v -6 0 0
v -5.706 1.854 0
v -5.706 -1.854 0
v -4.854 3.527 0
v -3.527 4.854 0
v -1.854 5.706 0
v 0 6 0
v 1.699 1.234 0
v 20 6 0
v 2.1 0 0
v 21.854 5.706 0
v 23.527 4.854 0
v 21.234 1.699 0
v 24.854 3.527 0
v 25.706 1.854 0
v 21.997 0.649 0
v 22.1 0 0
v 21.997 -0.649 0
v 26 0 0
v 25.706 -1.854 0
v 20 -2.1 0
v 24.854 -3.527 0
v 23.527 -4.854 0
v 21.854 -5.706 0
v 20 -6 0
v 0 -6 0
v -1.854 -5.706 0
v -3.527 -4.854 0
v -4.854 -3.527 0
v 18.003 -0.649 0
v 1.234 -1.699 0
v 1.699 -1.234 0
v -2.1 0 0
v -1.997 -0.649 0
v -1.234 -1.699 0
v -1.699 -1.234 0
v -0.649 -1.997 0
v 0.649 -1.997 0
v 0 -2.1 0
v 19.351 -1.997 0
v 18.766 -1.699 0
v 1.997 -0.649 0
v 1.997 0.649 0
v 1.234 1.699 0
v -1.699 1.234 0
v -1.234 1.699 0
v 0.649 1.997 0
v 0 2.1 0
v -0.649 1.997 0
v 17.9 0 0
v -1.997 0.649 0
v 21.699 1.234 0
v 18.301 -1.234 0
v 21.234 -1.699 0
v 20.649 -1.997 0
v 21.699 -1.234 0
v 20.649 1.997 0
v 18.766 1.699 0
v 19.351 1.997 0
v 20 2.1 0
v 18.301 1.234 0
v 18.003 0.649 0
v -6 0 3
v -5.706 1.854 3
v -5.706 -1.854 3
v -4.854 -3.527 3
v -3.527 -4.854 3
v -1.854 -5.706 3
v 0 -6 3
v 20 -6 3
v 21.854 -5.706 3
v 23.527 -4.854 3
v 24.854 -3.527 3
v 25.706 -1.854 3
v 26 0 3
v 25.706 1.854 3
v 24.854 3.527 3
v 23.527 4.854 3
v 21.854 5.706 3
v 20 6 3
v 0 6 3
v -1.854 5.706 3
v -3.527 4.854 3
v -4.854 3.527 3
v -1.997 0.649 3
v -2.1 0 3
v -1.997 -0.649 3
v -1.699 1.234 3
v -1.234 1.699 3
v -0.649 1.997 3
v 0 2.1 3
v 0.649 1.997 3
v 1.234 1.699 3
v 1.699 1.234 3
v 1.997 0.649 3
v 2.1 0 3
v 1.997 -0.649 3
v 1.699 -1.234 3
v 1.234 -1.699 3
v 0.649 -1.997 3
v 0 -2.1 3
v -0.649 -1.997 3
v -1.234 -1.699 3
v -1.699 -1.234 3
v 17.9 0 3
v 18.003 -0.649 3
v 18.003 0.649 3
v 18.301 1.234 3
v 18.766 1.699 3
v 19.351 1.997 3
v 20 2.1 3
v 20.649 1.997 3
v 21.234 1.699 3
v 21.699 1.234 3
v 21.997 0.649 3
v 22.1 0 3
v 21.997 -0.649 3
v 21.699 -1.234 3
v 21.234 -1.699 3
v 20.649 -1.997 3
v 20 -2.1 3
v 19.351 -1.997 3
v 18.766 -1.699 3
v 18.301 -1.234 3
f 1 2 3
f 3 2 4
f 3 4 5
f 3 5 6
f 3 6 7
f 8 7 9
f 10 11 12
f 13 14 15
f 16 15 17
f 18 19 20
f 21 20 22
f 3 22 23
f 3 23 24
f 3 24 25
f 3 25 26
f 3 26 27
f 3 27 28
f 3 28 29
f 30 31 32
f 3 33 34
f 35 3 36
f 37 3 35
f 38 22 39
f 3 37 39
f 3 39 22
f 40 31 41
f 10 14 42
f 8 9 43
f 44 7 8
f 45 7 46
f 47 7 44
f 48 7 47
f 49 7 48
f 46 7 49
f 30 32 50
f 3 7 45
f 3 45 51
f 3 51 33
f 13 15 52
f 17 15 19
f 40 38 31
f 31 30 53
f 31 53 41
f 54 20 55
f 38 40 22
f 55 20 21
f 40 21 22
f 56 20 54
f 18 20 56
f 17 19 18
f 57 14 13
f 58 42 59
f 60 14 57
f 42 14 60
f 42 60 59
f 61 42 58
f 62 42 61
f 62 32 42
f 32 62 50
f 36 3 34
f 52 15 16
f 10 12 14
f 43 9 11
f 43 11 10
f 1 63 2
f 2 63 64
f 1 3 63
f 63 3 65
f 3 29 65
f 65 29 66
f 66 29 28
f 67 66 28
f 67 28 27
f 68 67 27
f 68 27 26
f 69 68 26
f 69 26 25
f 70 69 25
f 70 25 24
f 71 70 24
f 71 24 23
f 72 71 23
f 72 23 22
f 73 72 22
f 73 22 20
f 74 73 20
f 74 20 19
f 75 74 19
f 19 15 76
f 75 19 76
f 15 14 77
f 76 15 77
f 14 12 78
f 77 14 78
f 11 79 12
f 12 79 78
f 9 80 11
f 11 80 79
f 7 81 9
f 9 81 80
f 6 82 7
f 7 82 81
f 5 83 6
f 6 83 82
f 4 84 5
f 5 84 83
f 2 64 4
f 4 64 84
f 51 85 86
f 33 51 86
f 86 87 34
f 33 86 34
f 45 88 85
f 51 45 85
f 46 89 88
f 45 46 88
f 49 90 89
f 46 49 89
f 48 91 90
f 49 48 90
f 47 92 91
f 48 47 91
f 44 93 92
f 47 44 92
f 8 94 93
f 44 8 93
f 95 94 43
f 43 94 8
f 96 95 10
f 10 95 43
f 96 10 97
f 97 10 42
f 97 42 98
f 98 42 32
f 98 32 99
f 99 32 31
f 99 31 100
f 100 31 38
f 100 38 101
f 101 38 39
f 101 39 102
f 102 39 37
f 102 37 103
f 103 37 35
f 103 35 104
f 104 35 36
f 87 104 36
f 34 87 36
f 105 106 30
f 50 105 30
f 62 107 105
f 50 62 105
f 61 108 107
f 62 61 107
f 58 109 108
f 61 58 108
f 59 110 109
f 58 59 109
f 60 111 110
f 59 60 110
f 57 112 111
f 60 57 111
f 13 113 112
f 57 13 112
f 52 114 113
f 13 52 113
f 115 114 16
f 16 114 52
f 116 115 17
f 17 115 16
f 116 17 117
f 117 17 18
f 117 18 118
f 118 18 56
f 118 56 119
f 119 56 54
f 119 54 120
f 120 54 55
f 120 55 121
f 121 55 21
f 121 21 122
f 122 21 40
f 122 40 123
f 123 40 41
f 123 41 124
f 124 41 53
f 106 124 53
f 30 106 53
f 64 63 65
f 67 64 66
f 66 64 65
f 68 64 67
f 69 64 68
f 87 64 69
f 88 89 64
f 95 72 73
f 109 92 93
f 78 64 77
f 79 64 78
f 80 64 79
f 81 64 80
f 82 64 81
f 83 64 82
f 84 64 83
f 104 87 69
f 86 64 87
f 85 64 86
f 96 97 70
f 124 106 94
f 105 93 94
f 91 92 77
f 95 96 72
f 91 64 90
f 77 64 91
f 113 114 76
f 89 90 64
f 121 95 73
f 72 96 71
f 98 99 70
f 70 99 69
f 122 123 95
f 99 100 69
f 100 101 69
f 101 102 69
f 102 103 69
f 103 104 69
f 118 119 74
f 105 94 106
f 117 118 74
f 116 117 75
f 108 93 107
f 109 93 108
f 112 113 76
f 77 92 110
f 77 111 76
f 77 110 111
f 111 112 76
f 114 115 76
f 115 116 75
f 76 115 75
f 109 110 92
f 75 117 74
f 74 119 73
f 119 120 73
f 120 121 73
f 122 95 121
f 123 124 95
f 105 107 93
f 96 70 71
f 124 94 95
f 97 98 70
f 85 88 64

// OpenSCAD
difference(){
	hull(){
	#cylinder(r=6,h=3,$fn=20);
	translate([20,0,0]) #cylinder(r=6,h=3,$fn=20);
	}
	translate([0,0,0]) #cylinder(r=4/2+.1,h=11,$fn=20);
	translate([20,0,0]) #cylinder(r=4/2+.1,h=11,$fn=20);

}

module beltclamp(h){
		cube([28,9,h],center=false);
}

module beltclamp_neg(h){
		translate([2,0,-1]) #cube([4,2,h+3],center=false);	
		translate([2+5*2,0,-1]) #cube([4,2,h+3],center=false);		
		translate([2+5*4,0,-1]) #cube([4,2,h+3],center=false);		

		translate([2,7,-1]) #cube([4,2,h+3],center=false);	translate([2+5*2,7,-1]) #cube([4,2,h+3],center=false);		
		translate([2+5*4,7,-1]) #cube([4,2,h+3],center=false);		

}
